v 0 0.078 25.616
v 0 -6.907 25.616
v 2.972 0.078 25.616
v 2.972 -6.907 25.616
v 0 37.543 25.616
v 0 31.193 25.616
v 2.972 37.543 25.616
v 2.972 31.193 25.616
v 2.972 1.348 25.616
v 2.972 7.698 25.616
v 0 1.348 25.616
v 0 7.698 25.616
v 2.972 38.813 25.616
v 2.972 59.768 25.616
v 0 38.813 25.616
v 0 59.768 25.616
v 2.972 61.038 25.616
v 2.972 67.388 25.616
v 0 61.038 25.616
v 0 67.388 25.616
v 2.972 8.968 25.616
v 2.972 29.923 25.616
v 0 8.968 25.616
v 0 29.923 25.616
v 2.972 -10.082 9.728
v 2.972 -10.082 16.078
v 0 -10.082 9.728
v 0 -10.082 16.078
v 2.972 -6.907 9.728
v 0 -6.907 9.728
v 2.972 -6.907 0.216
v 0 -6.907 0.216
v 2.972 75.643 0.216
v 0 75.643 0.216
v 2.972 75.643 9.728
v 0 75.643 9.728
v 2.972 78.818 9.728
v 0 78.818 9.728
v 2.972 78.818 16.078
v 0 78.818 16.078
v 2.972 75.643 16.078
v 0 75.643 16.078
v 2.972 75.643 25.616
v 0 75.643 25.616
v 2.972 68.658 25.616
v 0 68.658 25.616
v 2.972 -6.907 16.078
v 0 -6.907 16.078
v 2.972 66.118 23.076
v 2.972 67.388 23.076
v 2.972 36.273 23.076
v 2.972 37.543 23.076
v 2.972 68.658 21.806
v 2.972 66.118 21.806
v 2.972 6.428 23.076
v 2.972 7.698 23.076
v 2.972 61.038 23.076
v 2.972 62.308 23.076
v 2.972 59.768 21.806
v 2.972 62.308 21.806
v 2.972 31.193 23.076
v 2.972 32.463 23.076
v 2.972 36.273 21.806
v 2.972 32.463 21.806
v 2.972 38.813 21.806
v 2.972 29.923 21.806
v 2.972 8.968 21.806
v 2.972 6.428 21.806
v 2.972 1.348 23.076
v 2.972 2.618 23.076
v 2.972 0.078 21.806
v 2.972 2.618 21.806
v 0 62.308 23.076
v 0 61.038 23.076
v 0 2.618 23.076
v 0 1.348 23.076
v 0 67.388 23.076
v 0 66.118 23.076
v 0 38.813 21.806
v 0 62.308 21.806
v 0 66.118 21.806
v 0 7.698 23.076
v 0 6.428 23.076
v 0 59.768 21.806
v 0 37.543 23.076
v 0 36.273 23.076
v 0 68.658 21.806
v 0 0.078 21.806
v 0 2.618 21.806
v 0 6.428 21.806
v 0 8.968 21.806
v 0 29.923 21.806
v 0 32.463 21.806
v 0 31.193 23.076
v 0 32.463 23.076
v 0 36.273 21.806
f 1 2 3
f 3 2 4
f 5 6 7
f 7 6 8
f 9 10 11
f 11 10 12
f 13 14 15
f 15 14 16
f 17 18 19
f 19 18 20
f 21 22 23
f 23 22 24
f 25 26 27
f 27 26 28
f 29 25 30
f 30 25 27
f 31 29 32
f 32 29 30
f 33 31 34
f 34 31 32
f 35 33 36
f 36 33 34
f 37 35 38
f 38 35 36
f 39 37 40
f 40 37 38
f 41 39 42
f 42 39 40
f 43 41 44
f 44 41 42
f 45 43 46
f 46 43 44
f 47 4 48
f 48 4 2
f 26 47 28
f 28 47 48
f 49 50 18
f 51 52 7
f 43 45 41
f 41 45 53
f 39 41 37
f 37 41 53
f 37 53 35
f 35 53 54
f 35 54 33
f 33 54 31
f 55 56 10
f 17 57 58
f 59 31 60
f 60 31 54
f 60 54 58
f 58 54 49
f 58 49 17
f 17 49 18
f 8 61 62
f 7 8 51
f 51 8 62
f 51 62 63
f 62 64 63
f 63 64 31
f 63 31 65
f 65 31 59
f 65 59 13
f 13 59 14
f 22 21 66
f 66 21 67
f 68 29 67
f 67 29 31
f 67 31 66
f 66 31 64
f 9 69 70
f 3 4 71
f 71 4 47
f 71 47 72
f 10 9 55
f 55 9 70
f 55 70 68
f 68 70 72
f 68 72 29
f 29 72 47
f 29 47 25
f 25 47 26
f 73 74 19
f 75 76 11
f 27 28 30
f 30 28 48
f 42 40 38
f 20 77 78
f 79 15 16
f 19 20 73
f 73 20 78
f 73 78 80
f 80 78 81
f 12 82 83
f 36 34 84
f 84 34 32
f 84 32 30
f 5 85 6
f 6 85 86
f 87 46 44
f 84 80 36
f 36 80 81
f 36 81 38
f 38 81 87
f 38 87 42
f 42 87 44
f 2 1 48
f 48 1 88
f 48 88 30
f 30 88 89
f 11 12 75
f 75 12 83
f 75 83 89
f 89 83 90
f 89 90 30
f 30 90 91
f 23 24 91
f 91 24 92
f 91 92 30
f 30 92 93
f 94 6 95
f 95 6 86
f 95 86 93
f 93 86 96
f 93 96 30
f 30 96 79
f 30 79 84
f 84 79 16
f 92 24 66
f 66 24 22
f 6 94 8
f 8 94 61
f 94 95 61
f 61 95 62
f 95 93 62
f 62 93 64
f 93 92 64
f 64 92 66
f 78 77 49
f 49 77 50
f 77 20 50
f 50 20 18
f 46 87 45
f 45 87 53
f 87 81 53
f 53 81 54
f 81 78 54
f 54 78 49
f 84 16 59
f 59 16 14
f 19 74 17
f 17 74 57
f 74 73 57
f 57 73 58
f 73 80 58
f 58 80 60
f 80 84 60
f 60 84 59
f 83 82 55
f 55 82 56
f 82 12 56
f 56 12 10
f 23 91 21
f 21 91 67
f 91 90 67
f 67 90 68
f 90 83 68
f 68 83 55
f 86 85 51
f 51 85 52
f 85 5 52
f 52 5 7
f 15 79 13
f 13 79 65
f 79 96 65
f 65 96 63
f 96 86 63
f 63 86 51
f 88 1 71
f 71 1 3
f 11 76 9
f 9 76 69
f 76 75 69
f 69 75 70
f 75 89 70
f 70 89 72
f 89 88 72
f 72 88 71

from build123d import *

# Parameters (mm, degrees)
BOSS_EXTRUDE1_DEPTH = 2.9718
CUT_EXTRUDE1_DEPTH  = 83.929967317


with BuildPart() as part:
    # Sketch1 → Boss-Extrude1 (new body)
    with BuildSketch(Plane.YZ):
        Polygon((-10.081561306, 16.077656644), (-6.906561306, 16.077656644), (-6.906561306, 25.616432341), (75.643438694, 25.616432341), (75.643438694, 16.077656644), (78.818438694, 16.077656644), (78.818438694, 9.72759764), (75.643438694, 9.72759764), (75.643438694, 0.216196324), (-6.906561306, 0.216196324), (-6.906561306, 9.72759764), (-10.081561306, 9.72759764), align=None)
    extrude(amount=BOSS_EXTRUDE1_DEPTH)

    # Sketch2 → Cut-Extrude1 (cut, through all)
    with BuildSketch(Plane.YZ.offset(2.9718)):
        Polygon((0.078438694, 25.616432341), (1.348438694, 25.616432341), (1.348438694, 23.076432341), (2.618438694, 23.076432341), (2.618438694, 21.806432341), (0.078438694, 21.806432341), align=None)
        Polygon((6.428438694, 23.076432341), (6.428438694, 21.806432341), (8.968438694, 21.806432341), (8.968438694, 25.616432341), (7.698438694, 25.616432341), (7.698438694, 23.076432341), align=None)
        Polygon((29.923438694, 25.616432341), (31.193438694, 25.616432341), (31.193438694, 23.076432341), (32.463438694, 23.076432341), (32.463438694, 21.806432341), (29.923438694, 21.806432341), align=None)
        Polygon((36.273438694, 23.076432341), (36.273438694, 21.806432341), (38.813438694, 21.806432341), (38.813438694, 25.616432341), (37.543438694, 25.616432341), (37.543438694, 23.076432341), align=None)
        Polygon((59.768438694, 25.616432341), (61.038438694, 25.616432341), (61.038438694, 23.076432341), (62.308438694, 23.076432341), (62.308438694, 21.806432341), (59.768438694, 21.806432341), align=None)
        Polygon((66.118438694, 23.076432341), (66.118438694, 21.806432341), (68.658438694, 21.806432341), (68.658438694, 25.616432341), (67.388438694, 25.616432341), (67.388438694, 23.076432341), align=None)
    extrude(amount=-CUT_EXTRUDE1_DEPTH, mode=Mode.SUBTRACT)


solid = part.part
